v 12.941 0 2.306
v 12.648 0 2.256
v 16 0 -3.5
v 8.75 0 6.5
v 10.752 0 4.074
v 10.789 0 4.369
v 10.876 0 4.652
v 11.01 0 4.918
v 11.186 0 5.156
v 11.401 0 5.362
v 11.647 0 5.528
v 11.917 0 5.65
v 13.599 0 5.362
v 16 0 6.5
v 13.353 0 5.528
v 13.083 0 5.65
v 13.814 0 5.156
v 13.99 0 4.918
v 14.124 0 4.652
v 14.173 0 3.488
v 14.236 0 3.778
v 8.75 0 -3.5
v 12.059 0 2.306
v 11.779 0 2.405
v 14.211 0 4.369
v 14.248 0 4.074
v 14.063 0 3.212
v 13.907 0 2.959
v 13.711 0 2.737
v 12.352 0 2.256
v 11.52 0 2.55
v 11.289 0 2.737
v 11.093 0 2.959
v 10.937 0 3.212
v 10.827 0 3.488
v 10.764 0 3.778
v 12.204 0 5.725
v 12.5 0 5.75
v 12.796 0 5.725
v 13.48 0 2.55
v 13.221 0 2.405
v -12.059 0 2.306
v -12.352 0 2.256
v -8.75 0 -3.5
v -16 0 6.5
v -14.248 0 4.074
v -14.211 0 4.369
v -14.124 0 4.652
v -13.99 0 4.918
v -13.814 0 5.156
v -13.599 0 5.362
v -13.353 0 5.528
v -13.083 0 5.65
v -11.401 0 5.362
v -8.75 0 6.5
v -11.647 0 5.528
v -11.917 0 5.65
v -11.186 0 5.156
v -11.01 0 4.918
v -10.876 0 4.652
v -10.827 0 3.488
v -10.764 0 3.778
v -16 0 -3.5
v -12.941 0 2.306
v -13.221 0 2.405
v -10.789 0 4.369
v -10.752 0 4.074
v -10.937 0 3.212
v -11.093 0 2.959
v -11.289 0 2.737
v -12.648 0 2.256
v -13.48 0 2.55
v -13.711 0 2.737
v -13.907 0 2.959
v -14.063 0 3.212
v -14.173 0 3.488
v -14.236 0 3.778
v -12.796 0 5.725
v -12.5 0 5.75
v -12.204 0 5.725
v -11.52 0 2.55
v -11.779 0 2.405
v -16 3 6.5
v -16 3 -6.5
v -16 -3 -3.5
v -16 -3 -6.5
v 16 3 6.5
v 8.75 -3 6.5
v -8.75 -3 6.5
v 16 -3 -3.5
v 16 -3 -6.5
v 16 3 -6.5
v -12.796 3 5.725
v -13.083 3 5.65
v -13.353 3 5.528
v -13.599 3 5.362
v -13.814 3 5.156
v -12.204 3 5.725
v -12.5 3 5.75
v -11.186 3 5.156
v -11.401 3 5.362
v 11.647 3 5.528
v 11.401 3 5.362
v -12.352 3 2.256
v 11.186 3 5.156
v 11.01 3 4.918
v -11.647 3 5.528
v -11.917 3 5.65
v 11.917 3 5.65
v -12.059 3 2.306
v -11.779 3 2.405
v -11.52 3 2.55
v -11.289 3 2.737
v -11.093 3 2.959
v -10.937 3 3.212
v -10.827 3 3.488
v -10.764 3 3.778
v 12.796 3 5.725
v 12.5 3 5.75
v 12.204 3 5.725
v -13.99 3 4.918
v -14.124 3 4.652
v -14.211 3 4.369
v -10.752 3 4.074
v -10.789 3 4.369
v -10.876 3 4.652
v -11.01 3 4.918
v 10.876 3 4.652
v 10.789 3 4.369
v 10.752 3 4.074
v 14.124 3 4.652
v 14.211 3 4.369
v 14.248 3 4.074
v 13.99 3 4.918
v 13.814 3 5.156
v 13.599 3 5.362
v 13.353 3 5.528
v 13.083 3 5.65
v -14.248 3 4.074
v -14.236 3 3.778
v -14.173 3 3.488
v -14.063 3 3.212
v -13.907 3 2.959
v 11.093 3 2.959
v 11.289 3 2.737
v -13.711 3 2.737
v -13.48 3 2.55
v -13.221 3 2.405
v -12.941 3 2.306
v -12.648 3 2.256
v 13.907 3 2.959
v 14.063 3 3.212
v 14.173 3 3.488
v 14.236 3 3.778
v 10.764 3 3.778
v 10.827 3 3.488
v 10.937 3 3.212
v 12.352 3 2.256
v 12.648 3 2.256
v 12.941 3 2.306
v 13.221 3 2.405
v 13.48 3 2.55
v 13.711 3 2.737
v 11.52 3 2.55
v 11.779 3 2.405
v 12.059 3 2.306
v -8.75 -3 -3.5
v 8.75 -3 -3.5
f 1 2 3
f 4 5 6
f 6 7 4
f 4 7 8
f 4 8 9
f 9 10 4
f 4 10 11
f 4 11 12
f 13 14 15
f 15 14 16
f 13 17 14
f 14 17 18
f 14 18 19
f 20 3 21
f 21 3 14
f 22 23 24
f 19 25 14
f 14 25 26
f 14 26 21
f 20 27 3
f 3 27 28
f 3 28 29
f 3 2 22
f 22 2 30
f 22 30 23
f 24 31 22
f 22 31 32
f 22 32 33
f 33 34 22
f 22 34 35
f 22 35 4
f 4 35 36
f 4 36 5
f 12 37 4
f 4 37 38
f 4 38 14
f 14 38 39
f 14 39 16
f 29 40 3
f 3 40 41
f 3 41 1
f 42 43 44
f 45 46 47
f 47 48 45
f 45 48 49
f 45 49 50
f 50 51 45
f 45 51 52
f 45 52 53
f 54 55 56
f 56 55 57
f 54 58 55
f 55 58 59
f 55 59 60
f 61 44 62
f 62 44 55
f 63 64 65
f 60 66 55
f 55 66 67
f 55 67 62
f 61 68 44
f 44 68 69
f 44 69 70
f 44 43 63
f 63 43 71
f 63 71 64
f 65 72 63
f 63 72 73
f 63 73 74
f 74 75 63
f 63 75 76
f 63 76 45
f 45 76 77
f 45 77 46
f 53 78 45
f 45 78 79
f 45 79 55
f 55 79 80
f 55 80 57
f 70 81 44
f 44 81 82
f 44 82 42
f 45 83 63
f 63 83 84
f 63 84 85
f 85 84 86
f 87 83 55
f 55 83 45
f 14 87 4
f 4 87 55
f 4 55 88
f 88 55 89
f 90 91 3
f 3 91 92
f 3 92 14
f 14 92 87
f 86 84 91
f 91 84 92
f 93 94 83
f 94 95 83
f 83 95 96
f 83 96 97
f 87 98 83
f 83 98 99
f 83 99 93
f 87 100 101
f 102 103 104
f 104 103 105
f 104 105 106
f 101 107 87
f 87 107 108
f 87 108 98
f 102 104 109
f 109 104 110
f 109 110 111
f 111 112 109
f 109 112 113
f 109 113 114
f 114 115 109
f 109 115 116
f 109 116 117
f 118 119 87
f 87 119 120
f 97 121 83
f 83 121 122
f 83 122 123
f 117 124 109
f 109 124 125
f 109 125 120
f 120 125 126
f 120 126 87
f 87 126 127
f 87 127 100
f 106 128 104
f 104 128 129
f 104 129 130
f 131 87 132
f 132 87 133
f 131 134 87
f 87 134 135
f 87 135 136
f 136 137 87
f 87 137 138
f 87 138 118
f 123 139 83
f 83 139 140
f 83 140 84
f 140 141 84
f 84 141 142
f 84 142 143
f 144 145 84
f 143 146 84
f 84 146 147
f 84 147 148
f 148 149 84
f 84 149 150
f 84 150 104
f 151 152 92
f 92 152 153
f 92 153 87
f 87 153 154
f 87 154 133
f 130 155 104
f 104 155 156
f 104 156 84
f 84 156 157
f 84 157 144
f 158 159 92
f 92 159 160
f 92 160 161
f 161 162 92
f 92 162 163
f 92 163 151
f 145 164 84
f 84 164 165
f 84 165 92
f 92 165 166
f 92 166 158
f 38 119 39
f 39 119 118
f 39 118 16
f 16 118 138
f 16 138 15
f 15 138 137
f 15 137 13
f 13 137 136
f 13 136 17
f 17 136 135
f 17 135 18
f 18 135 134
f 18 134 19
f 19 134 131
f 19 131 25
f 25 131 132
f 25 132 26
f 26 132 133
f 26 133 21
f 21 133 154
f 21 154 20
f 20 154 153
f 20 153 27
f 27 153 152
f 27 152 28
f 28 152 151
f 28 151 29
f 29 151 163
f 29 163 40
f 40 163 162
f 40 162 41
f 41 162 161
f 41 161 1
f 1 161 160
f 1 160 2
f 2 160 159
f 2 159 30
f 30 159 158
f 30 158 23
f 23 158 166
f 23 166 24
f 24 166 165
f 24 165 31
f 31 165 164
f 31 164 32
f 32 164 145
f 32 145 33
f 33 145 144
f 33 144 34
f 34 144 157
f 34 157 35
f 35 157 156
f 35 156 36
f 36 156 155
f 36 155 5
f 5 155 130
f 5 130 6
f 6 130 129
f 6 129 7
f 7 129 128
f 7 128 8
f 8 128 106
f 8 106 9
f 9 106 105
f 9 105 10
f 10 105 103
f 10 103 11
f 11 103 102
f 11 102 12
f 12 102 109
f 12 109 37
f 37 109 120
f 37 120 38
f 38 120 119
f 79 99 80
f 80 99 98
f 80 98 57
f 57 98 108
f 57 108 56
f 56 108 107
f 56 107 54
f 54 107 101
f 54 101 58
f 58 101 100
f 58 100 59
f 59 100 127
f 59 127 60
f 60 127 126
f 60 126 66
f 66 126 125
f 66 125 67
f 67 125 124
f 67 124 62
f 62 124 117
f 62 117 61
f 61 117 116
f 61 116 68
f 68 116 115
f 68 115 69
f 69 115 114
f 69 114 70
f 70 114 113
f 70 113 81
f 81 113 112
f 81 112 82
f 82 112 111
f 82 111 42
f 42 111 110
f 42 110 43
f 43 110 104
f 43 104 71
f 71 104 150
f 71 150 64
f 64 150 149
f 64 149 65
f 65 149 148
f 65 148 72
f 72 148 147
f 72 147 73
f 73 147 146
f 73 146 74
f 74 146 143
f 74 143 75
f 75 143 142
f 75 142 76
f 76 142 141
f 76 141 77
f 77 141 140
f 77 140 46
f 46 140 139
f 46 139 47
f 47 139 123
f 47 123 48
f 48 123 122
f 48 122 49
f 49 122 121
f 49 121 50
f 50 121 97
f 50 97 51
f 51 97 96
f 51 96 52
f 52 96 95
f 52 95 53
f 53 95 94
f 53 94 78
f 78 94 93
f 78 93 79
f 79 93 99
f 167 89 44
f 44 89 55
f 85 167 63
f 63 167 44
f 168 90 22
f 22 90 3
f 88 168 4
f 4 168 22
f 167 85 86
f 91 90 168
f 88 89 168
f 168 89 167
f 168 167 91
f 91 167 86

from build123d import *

# Parameters (mm, degrees)
SKETCH_1_W          = 32
SKETCH_1_H          = 13
EXTRUDE_1_DEPTH     = 3
SKETCH_2_R          = 1.75
CUT_EXTRUDE_1_DEPTH = 4
EXTRUDE_2_DEPTH     = 3


with BuildPart() as part:
    # 스케치1 → 보스-돌출1 (new body)
    with BuildSketch(Plane(origin=(0, 0, 0), x_dir=(1, 0, 0), z_dir=(0, 1, 0))):
        Rectangle(SKETCH_1_W, SKETCH_1_H)
    extrude(amount=EXTRUDE_1_DEPTH)

    # 스케치2 → 컷-돌출1 (cut, through all)
    with BuildSketch(Plane(origin=(0, 3, 0), x_dir=(1, 0, 0), z_dir=(0, 1, 0))):
        with Locations((-12.5, -4)):
            Circle(SKETCH_2_R)
        with Locations((12.5, -4)):
            Circle(SKETCH_2_R)
    extrude(amount=-CUT_EXTRUDE_1_DEPTH, mode=Mode.SUBTRACT)

    # 스케치3 → 보스-돌출2 (add)
    with BuildSketch(Plane.XZ):
        Polygon((-8.75, 6.5), (8.75, 6.5), (8.75, -3.5), (16, -3.5), (16, -6.5), (-16, -6.5), (-16, -3.5), (-8.75, -3.5), align=None)
    extrude(amount=EXTRUDE_2_DEPTH)


solid = part.part
